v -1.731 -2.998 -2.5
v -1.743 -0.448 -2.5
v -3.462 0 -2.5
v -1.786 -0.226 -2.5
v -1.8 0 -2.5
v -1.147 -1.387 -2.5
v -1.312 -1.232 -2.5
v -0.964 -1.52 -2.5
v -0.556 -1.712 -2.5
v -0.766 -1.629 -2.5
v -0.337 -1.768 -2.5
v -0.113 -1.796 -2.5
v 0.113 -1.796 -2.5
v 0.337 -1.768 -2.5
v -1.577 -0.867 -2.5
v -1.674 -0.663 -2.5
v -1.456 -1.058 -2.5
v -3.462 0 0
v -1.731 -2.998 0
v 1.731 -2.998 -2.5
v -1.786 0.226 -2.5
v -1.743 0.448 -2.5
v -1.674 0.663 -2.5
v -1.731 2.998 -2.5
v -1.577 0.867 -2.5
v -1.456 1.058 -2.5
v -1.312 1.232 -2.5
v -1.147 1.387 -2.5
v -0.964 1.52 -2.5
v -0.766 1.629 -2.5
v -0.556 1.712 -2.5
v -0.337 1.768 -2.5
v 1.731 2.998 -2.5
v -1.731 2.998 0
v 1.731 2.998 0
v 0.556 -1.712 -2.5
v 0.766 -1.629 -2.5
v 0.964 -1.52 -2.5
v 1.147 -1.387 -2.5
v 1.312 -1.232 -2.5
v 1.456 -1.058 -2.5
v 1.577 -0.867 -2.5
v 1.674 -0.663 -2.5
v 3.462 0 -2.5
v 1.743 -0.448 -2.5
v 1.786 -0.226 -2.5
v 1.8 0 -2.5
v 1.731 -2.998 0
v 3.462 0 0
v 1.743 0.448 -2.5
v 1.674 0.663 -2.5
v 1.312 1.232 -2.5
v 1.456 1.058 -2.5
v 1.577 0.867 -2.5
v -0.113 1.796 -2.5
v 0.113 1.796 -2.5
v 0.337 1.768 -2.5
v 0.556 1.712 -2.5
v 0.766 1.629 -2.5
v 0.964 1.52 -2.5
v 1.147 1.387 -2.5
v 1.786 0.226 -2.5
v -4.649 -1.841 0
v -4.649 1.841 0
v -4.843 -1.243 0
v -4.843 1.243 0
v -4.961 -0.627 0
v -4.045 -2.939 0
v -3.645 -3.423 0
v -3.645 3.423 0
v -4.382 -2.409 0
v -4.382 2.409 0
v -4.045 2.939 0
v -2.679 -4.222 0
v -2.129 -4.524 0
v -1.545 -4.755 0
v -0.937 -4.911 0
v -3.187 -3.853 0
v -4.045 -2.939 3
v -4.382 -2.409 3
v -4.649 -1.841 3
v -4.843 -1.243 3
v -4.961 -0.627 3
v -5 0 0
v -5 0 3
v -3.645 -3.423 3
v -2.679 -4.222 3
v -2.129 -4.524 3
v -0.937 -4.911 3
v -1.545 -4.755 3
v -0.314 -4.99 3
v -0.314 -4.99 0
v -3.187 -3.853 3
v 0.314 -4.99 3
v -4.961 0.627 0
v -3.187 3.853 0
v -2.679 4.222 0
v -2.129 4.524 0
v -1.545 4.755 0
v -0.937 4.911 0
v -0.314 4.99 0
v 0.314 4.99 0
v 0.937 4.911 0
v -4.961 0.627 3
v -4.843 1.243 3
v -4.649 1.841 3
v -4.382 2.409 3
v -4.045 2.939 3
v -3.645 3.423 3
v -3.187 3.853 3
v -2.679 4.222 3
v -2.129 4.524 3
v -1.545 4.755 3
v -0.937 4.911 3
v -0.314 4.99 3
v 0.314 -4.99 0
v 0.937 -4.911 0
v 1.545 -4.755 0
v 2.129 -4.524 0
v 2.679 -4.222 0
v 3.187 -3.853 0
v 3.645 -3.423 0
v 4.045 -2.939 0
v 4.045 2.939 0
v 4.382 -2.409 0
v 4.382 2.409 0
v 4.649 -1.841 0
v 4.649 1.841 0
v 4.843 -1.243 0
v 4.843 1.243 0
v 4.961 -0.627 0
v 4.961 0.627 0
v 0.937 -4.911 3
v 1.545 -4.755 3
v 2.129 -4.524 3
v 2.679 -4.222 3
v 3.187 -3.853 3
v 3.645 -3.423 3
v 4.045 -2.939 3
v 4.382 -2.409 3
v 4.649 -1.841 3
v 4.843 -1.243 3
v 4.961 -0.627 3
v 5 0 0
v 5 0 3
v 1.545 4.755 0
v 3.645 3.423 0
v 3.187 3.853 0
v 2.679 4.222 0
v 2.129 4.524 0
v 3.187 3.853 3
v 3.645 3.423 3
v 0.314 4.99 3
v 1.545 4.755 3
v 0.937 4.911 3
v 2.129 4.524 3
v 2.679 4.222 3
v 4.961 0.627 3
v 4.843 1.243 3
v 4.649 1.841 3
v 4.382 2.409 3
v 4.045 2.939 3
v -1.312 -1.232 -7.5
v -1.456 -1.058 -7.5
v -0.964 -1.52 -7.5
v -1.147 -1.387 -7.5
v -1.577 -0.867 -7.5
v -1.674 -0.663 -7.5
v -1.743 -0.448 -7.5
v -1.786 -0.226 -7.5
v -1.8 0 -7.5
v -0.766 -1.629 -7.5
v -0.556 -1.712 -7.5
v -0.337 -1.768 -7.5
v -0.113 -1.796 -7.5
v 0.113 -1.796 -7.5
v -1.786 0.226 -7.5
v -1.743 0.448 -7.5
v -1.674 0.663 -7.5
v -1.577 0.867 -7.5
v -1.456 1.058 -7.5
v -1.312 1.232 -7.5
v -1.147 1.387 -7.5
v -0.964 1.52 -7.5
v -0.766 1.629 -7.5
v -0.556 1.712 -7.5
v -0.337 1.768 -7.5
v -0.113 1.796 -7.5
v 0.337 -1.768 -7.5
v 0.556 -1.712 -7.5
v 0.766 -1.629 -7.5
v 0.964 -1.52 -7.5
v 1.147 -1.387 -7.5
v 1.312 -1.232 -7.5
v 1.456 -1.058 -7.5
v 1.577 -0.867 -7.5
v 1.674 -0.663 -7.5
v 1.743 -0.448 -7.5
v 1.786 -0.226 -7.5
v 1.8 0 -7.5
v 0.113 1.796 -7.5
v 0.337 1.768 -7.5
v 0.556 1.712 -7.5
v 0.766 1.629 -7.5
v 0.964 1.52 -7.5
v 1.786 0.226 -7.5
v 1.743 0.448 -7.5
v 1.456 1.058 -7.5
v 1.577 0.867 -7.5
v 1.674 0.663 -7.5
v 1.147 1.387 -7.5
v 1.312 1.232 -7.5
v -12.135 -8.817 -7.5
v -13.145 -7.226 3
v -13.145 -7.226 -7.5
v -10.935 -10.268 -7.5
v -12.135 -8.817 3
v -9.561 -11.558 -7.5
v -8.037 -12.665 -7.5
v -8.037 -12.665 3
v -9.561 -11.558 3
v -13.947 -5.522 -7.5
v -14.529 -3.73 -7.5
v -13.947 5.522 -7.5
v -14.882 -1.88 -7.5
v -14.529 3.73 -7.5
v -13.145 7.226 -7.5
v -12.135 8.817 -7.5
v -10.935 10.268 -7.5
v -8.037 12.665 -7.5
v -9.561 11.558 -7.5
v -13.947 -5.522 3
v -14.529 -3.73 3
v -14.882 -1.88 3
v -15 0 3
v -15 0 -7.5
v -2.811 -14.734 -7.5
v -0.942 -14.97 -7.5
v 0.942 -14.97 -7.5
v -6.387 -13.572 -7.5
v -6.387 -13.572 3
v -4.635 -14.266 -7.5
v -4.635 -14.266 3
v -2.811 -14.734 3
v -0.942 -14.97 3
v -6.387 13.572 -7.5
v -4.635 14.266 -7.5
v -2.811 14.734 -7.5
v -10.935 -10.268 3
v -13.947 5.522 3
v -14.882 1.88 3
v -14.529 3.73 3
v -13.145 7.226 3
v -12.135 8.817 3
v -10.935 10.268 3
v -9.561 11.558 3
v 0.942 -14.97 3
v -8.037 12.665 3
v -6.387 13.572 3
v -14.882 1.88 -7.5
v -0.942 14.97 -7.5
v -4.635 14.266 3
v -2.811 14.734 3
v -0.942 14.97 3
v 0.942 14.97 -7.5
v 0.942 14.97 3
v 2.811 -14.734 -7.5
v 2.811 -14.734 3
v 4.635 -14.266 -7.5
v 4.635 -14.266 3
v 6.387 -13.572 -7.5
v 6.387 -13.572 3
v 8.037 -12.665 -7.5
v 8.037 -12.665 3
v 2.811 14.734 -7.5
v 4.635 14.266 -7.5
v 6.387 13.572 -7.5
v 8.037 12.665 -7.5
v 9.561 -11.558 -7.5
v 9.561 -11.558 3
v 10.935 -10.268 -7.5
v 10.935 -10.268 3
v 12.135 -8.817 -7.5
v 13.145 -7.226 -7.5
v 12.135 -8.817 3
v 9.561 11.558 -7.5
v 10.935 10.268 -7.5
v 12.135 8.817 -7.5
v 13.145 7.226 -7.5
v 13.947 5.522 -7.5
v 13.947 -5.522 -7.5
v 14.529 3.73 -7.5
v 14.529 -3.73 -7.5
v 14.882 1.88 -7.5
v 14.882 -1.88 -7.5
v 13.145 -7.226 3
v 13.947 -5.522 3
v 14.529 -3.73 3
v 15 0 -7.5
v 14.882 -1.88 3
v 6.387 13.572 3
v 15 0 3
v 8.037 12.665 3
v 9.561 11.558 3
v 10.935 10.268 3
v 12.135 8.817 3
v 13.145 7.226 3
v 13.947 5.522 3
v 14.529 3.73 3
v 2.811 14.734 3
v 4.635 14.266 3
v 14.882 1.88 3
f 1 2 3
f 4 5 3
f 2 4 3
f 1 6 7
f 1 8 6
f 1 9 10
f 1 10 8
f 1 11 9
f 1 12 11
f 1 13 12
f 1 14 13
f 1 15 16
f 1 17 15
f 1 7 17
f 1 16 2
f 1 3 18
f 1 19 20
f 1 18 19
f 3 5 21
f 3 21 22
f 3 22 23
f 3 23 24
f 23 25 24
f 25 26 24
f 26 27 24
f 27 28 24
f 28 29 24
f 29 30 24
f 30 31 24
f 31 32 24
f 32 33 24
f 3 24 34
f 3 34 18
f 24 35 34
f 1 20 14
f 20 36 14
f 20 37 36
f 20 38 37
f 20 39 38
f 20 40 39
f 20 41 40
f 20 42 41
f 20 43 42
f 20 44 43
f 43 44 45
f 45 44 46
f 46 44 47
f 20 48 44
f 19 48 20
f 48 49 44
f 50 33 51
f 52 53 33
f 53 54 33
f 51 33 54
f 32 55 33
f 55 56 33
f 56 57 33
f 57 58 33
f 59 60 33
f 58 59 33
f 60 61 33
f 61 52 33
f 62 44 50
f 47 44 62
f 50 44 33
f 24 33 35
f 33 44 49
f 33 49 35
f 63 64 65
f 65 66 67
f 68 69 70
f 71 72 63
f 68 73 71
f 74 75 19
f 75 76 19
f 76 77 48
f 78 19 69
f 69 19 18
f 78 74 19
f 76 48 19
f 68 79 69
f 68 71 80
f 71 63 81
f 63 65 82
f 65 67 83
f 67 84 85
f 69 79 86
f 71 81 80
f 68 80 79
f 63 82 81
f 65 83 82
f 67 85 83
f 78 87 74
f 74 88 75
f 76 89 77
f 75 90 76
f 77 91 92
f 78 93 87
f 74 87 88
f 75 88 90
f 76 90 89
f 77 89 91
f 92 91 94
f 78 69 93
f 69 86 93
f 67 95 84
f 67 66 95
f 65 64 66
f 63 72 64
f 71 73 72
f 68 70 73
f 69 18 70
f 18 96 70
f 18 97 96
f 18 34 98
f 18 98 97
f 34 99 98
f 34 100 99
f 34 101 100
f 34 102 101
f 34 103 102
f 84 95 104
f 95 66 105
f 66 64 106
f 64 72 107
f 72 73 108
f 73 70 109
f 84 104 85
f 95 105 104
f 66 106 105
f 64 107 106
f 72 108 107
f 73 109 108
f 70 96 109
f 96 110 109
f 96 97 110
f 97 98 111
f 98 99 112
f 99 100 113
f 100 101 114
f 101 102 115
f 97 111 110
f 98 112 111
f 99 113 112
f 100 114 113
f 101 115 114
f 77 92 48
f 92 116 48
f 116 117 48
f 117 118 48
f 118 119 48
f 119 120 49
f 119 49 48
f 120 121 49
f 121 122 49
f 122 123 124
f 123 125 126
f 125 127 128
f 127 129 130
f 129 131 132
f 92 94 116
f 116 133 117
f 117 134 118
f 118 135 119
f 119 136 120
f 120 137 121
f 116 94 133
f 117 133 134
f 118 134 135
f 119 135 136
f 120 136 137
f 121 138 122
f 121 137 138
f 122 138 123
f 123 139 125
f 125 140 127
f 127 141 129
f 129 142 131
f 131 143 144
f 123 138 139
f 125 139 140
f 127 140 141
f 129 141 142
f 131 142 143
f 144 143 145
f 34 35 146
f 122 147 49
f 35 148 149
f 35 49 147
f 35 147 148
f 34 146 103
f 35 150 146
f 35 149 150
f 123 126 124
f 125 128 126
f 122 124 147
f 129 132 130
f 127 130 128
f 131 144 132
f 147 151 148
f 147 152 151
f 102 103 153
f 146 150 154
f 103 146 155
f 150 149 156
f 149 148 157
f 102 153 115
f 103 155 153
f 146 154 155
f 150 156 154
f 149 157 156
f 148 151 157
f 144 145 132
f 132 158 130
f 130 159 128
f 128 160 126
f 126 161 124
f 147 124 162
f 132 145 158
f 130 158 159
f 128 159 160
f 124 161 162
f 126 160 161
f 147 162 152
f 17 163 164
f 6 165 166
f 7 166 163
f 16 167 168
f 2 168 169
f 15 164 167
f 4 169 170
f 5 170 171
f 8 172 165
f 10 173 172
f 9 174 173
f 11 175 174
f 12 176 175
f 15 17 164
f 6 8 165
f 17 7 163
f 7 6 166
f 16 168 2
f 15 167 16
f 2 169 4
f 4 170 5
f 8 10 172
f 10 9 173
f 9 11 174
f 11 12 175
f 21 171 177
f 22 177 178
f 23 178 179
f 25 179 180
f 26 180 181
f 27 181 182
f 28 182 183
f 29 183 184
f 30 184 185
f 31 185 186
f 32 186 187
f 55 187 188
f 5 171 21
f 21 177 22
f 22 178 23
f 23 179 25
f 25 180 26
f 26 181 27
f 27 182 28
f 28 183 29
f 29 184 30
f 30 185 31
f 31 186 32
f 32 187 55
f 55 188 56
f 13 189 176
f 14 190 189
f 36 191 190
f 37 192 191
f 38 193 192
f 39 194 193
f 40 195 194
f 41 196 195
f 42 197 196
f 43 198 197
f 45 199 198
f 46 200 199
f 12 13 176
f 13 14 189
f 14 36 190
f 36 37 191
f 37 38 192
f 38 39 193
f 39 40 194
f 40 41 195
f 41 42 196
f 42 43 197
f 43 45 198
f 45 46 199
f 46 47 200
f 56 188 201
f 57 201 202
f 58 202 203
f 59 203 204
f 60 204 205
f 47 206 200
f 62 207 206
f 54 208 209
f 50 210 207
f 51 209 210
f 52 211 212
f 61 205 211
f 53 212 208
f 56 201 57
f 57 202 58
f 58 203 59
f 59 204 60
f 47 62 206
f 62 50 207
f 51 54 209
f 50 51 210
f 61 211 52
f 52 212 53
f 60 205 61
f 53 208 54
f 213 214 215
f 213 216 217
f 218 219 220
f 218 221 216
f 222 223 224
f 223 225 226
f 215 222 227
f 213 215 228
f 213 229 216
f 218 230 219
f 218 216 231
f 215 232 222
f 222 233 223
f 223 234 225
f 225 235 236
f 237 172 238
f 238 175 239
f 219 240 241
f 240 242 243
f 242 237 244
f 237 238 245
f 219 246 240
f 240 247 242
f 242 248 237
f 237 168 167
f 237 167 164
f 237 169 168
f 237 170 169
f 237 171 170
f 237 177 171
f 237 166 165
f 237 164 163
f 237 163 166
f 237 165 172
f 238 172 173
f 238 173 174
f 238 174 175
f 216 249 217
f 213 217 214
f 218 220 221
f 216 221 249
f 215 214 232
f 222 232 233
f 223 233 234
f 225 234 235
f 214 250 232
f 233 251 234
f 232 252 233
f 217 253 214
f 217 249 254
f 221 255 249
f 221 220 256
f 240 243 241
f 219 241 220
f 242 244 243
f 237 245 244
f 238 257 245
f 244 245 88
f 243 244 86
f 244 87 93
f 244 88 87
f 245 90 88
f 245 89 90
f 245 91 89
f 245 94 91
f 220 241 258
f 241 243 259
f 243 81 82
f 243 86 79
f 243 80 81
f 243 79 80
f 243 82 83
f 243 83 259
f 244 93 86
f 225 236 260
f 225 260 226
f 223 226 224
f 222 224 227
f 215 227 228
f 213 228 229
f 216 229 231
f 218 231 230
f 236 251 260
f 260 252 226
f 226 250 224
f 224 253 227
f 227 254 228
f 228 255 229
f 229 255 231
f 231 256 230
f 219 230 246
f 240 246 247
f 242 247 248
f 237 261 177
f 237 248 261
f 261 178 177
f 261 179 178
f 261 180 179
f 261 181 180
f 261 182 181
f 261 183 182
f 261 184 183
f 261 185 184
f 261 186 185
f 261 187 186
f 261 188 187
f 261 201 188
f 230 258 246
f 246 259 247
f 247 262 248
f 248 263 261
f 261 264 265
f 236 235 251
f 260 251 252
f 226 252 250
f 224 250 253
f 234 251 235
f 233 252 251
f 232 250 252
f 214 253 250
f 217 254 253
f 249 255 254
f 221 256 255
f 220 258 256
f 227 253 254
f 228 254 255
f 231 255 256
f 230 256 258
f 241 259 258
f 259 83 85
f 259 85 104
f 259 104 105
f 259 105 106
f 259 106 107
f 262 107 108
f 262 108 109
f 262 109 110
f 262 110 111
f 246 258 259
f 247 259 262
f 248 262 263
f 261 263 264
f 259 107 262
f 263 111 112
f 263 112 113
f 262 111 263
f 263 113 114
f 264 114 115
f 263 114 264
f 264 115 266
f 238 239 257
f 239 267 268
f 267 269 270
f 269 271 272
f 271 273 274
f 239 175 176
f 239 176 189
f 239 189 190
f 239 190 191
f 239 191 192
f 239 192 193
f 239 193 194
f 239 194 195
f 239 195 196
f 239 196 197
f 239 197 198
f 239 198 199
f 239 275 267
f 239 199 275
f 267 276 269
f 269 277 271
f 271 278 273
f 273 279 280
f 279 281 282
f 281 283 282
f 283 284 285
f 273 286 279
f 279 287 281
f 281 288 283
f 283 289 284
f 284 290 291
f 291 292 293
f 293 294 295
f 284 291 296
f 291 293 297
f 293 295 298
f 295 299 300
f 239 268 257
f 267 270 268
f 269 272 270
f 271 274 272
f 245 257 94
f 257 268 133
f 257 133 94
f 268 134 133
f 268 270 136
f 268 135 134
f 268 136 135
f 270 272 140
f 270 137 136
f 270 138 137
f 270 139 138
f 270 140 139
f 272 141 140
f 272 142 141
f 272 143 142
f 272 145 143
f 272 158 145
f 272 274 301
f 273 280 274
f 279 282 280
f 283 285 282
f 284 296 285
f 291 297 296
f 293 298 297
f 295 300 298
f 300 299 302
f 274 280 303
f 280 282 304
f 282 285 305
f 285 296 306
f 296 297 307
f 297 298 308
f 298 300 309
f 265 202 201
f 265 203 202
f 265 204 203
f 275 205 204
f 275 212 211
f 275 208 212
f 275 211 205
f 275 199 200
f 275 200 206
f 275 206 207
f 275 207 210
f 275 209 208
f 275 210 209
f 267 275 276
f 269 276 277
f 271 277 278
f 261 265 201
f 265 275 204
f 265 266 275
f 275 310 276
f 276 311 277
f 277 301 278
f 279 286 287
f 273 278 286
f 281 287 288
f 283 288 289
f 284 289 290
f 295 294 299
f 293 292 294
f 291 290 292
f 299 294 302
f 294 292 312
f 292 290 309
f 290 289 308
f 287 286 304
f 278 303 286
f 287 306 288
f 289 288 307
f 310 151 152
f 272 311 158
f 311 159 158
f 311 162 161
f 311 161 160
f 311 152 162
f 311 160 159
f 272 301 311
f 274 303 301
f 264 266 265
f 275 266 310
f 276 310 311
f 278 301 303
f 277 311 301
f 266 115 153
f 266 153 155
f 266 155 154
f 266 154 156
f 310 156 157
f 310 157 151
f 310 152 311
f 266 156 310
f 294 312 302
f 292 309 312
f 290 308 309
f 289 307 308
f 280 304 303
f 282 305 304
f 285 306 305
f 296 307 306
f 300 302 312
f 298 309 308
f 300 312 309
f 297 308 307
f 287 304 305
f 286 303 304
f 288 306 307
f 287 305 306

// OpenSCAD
$fn = 50;

difference() {
	union() {
		translate(v = [0, 0, -7.5]) {
			cylinder(h = 10.5, r = 15.0);
		}
	}
	union() {
		translate(v = [0, 0, 0]) {
			rotate(a = [0, 0, 0]) {
				difference() {
					union() {
						translate(v = [0, 0, -2.5]) {
							linear_extrude(height = 2.5) {
								polygon(points = [[3.4619999999999997, 0.0], [1.7310000000000003, 2.9981799479017264], [-1.7309999999999992, 2.9981799479017264], [-3.4619999999999997, 4.2397272186481365e-16], [-1.7310000000000014, -2.998179947901726], [1.7309999999999977, -2.9981799479017277]]);
							}
						}
					}
					union();
				}
			}
		}
		#cylinder(h = 3, r = 5.0);
		#translate(v = [0, 0, -100.0]) {
			cylinder(h = 200, r = 1.8);
		}
	}
}
